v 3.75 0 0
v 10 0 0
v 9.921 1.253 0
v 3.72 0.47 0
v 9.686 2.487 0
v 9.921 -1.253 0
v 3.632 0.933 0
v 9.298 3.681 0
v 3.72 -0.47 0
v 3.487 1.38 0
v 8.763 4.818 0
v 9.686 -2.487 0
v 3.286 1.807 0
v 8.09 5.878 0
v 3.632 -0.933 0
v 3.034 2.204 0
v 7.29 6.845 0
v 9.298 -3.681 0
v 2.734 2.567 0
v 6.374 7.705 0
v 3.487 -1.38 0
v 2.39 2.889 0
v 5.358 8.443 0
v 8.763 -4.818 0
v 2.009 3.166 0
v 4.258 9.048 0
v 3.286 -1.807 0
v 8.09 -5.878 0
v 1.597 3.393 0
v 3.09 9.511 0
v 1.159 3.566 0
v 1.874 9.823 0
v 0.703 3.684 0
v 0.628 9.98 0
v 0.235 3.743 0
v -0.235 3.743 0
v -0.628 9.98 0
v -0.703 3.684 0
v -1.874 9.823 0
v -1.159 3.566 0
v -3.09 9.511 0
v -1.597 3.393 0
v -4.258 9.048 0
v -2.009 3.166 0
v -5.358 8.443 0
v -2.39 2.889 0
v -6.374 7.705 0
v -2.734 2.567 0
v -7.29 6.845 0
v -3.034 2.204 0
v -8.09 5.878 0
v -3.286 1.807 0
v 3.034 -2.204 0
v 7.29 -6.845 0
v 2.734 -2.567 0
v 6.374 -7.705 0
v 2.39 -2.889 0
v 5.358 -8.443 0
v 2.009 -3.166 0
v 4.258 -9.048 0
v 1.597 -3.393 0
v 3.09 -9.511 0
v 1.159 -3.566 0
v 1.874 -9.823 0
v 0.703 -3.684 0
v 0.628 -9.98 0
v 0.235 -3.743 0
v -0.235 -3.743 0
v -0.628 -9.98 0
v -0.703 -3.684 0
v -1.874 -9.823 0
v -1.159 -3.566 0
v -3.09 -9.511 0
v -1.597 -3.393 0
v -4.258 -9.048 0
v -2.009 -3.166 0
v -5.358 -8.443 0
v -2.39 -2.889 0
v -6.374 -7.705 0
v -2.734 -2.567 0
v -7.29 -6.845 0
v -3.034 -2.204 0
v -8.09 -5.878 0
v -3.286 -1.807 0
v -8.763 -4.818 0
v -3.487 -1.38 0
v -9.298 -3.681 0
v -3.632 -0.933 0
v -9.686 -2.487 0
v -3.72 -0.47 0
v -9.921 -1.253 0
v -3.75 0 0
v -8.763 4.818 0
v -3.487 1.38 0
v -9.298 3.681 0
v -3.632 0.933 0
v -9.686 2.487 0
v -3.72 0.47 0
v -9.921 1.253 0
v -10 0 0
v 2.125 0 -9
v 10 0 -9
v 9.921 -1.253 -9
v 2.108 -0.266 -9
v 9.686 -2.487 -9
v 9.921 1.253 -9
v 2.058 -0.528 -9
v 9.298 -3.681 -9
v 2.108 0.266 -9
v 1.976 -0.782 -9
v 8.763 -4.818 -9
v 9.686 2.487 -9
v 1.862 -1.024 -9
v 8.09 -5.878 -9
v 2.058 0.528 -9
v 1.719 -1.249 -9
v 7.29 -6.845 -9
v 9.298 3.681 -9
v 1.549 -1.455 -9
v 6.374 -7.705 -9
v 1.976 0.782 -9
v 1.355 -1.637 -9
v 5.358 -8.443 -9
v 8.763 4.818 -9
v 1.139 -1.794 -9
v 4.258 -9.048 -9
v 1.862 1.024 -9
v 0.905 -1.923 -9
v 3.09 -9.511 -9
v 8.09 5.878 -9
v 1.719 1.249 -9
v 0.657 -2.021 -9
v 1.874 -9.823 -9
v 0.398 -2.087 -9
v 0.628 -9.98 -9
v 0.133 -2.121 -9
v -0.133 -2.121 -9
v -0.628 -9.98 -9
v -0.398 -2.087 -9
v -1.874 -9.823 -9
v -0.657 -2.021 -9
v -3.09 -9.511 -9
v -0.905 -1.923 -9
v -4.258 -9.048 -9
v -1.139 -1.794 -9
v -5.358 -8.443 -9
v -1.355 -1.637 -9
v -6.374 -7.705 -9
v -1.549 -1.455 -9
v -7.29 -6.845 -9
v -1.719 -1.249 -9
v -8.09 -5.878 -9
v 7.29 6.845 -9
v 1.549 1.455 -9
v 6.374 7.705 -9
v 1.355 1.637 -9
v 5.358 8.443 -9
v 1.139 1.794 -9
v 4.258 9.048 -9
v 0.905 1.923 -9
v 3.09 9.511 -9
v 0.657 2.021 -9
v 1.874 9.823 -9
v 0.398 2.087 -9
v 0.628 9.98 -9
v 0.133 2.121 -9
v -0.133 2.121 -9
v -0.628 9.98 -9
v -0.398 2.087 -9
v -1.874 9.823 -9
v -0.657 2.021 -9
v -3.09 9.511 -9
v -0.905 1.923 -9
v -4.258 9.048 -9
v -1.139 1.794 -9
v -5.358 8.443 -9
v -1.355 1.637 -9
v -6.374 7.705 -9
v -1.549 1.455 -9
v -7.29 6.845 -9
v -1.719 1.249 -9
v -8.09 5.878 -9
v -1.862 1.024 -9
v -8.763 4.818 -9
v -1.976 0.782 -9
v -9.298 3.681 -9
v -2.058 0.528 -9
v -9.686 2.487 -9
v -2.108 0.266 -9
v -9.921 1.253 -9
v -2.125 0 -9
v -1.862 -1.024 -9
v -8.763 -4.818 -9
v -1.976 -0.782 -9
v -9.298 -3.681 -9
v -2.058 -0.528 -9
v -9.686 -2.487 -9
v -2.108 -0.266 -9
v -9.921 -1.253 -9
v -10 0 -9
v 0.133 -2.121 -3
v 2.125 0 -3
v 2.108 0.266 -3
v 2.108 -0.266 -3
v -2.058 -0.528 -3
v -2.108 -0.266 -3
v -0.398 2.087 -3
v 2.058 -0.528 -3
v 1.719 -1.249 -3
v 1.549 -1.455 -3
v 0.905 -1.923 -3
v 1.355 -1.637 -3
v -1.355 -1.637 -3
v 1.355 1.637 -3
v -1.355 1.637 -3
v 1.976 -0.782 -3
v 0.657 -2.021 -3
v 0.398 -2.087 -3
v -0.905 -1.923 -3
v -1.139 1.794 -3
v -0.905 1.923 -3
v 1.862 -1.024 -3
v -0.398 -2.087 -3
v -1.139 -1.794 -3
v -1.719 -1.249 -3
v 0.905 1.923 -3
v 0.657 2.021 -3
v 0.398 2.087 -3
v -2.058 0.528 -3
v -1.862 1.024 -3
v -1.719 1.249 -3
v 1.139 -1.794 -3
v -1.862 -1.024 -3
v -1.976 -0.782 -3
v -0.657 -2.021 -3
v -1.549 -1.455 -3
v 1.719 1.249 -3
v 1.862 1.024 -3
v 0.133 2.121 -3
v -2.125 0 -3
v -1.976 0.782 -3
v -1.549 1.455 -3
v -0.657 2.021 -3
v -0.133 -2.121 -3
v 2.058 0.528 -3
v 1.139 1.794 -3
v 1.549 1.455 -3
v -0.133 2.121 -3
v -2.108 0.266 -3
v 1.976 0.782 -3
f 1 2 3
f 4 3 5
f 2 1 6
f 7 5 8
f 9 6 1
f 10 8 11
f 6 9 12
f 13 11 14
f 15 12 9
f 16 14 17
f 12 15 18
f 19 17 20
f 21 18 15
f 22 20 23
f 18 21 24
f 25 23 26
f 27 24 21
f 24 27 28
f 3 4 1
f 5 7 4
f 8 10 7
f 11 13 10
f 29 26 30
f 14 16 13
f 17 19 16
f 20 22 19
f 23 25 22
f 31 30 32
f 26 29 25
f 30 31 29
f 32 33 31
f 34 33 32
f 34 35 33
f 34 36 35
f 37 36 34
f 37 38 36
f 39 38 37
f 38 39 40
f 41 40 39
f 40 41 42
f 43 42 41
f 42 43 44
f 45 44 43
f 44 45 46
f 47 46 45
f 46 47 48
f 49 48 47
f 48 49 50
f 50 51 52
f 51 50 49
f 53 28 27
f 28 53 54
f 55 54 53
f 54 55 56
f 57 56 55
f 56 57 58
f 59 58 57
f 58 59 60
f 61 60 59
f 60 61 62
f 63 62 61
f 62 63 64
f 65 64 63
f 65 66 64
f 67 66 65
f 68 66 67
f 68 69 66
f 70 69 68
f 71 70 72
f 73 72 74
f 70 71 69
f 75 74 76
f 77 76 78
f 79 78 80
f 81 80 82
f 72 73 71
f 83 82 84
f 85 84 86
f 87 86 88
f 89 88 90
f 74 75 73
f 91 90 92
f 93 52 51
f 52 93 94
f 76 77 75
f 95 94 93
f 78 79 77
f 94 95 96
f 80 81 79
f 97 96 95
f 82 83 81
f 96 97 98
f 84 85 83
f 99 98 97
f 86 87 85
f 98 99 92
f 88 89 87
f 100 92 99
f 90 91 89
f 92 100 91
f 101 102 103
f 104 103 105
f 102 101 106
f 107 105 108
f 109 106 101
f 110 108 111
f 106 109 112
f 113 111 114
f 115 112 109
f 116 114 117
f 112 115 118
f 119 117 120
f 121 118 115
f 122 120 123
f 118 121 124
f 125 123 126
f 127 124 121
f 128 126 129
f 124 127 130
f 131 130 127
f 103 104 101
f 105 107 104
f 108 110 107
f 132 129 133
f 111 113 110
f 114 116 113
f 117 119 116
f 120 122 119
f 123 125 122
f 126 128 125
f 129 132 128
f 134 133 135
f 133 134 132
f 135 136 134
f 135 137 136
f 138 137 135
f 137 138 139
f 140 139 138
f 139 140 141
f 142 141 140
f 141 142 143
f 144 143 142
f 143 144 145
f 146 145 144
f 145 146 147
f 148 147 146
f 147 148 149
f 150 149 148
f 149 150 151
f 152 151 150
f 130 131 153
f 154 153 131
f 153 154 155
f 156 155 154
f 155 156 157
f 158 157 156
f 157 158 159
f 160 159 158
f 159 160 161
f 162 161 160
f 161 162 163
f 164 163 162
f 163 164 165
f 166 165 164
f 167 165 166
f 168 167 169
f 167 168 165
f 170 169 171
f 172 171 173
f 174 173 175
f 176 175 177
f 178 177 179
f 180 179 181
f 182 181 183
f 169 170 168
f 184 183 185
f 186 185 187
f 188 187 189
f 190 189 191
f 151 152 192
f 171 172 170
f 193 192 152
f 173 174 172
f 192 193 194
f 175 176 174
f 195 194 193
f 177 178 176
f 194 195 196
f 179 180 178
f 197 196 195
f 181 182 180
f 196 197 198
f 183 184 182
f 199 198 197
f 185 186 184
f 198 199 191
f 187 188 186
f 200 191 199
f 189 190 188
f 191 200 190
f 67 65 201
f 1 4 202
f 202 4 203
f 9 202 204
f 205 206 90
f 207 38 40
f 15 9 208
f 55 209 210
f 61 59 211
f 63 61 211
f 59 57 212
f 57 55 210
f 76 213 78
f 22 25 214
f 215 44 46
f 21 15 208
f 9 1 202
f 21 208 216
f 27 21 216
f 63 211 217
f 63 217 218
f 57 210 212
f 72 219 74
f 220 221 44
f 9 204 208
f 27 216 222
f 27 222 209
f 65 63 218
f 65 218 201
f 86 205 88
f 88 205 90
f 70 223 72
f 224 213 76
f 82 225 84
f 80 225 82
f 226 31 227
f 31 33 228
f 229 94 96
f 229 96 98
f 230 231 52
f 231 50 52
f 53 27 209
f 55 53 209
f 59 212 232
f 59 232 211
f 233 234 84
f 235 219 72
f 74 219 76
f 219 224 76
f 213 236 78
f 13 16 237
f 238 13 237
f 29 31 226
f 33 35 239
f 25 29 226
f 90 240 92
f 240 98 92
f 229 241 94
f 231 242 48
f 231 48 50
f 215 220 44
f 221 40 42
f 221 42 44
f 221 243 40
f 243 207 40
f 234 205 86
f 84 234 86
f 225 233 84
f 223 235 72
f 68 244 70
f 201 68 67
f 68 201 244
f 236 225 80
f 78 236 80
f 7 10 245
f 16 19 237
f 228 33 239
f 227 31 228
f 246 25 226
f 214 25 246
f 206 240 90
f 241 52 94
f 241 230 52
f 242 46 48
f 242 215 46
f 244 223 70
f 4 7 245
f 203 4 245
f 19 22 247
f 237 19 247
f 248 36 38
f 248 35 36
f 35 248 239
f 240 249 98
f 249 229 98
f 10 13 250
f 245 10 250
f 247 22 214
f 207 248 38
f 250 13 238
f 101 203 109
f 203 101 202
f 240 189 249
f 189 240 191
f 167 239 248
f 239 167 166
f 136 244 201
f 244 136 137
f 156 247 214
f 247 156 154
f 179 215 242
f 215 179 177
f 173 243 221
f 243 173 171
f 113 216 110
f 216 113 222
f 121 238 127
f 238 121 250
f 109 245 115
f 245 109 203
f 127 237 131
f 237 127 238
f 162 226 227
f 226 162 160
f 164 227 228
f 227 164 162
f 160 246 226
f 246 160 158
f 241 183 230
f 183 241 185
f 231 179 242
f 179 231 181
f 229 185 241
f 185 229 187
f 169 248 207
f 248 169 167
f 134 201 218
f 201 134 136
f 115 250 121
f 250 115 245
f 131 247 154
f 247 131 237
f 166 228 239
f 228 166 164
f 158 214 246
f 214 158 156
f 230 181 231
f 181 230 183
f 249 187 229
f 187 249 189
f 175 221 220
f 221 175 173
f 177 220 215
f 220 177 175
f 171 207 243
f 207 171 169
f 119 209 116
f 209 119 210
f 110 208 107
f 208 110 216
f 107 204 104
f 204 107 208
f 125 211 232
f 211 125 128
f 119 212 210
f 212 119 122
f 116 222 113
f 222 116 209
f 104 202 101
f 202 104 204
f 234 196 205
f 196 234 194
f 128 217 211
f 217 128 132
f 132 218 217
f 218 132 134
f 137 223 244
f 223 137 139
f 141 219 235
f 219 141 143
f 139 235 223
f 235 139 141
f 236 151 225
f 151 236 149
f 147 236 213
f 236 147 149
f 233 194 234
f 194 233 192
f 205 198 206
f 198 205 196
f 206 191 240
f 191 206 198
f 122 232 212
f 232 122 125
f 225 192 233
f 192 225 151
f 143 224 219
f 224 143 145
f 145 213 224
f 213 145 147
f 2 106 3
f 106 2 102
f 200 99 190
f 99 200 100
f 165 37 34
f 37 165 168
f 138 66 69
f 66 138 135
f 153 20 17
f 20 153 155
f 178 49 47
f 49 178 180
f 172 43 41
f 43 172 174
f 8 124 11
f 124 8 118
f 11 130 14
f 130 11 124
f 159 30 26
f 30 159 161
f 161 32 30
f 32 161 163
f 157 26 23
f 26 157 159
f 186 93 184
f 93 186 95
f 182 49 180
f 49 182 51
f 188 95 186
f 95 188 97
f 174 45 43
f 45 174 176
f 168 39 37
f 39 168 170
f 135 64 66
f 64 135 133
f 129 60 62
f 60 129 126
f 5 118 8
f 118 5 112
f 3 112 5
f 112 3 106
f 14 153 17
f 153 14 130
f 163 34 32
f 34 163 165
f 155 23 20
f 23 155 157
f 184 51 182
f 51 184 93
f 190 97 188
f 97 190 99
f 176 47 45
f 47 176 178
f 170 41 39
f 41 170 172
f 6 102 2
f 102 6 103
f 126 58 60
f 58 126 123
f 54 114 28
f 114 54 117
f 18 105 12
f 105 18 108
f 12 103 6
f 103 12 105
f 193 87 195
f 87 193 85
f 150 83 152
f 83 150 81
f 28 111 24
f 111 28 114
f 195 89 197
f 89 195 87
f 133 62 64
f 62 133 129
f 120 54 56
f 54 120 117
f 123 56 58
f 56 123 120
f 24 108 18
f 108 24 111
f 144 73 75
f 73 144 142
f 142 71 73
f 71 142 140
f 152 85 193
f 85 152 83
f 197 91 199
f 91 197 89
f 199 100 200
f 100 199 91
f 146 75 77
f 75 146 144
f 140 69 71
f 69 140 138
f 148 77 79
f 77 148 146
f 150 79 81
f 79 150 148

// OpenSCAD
$fn = 50;


difference() {
	union() {
		translate(v = [0, 0, -9.0000000000]) {
			cylinder(h = 9, r = 10.0000000000);
		}
		cylinder(h = 0, r = 13.0000000000);
	}
	union() {
		translate(v = [0, 0, 0]) {
			rotate(a = [0, 0, 0]) {
				difference() {
					union() {
						#translate(v = [0, 0, -9.0000000000]) {
							cylinder(h = 9, r = 2.0000000000);
						}
						#translate(v = [0, 0, -3]) {
							cylinder(h = 3, r1 = 2.1250000000, r2 = 3.7500000000);
						}
						#translate(v = [0, 0, -9.0000000000]) {
							cylinder(h = 9, r = 2.1250000000);
						}
						#translate(v = [0, 0, -9.0000000000]) {
							cylinder(h = 9, r = 2.0000000000);
						}
					}
					union();
				}
			}
		}
	}
}
